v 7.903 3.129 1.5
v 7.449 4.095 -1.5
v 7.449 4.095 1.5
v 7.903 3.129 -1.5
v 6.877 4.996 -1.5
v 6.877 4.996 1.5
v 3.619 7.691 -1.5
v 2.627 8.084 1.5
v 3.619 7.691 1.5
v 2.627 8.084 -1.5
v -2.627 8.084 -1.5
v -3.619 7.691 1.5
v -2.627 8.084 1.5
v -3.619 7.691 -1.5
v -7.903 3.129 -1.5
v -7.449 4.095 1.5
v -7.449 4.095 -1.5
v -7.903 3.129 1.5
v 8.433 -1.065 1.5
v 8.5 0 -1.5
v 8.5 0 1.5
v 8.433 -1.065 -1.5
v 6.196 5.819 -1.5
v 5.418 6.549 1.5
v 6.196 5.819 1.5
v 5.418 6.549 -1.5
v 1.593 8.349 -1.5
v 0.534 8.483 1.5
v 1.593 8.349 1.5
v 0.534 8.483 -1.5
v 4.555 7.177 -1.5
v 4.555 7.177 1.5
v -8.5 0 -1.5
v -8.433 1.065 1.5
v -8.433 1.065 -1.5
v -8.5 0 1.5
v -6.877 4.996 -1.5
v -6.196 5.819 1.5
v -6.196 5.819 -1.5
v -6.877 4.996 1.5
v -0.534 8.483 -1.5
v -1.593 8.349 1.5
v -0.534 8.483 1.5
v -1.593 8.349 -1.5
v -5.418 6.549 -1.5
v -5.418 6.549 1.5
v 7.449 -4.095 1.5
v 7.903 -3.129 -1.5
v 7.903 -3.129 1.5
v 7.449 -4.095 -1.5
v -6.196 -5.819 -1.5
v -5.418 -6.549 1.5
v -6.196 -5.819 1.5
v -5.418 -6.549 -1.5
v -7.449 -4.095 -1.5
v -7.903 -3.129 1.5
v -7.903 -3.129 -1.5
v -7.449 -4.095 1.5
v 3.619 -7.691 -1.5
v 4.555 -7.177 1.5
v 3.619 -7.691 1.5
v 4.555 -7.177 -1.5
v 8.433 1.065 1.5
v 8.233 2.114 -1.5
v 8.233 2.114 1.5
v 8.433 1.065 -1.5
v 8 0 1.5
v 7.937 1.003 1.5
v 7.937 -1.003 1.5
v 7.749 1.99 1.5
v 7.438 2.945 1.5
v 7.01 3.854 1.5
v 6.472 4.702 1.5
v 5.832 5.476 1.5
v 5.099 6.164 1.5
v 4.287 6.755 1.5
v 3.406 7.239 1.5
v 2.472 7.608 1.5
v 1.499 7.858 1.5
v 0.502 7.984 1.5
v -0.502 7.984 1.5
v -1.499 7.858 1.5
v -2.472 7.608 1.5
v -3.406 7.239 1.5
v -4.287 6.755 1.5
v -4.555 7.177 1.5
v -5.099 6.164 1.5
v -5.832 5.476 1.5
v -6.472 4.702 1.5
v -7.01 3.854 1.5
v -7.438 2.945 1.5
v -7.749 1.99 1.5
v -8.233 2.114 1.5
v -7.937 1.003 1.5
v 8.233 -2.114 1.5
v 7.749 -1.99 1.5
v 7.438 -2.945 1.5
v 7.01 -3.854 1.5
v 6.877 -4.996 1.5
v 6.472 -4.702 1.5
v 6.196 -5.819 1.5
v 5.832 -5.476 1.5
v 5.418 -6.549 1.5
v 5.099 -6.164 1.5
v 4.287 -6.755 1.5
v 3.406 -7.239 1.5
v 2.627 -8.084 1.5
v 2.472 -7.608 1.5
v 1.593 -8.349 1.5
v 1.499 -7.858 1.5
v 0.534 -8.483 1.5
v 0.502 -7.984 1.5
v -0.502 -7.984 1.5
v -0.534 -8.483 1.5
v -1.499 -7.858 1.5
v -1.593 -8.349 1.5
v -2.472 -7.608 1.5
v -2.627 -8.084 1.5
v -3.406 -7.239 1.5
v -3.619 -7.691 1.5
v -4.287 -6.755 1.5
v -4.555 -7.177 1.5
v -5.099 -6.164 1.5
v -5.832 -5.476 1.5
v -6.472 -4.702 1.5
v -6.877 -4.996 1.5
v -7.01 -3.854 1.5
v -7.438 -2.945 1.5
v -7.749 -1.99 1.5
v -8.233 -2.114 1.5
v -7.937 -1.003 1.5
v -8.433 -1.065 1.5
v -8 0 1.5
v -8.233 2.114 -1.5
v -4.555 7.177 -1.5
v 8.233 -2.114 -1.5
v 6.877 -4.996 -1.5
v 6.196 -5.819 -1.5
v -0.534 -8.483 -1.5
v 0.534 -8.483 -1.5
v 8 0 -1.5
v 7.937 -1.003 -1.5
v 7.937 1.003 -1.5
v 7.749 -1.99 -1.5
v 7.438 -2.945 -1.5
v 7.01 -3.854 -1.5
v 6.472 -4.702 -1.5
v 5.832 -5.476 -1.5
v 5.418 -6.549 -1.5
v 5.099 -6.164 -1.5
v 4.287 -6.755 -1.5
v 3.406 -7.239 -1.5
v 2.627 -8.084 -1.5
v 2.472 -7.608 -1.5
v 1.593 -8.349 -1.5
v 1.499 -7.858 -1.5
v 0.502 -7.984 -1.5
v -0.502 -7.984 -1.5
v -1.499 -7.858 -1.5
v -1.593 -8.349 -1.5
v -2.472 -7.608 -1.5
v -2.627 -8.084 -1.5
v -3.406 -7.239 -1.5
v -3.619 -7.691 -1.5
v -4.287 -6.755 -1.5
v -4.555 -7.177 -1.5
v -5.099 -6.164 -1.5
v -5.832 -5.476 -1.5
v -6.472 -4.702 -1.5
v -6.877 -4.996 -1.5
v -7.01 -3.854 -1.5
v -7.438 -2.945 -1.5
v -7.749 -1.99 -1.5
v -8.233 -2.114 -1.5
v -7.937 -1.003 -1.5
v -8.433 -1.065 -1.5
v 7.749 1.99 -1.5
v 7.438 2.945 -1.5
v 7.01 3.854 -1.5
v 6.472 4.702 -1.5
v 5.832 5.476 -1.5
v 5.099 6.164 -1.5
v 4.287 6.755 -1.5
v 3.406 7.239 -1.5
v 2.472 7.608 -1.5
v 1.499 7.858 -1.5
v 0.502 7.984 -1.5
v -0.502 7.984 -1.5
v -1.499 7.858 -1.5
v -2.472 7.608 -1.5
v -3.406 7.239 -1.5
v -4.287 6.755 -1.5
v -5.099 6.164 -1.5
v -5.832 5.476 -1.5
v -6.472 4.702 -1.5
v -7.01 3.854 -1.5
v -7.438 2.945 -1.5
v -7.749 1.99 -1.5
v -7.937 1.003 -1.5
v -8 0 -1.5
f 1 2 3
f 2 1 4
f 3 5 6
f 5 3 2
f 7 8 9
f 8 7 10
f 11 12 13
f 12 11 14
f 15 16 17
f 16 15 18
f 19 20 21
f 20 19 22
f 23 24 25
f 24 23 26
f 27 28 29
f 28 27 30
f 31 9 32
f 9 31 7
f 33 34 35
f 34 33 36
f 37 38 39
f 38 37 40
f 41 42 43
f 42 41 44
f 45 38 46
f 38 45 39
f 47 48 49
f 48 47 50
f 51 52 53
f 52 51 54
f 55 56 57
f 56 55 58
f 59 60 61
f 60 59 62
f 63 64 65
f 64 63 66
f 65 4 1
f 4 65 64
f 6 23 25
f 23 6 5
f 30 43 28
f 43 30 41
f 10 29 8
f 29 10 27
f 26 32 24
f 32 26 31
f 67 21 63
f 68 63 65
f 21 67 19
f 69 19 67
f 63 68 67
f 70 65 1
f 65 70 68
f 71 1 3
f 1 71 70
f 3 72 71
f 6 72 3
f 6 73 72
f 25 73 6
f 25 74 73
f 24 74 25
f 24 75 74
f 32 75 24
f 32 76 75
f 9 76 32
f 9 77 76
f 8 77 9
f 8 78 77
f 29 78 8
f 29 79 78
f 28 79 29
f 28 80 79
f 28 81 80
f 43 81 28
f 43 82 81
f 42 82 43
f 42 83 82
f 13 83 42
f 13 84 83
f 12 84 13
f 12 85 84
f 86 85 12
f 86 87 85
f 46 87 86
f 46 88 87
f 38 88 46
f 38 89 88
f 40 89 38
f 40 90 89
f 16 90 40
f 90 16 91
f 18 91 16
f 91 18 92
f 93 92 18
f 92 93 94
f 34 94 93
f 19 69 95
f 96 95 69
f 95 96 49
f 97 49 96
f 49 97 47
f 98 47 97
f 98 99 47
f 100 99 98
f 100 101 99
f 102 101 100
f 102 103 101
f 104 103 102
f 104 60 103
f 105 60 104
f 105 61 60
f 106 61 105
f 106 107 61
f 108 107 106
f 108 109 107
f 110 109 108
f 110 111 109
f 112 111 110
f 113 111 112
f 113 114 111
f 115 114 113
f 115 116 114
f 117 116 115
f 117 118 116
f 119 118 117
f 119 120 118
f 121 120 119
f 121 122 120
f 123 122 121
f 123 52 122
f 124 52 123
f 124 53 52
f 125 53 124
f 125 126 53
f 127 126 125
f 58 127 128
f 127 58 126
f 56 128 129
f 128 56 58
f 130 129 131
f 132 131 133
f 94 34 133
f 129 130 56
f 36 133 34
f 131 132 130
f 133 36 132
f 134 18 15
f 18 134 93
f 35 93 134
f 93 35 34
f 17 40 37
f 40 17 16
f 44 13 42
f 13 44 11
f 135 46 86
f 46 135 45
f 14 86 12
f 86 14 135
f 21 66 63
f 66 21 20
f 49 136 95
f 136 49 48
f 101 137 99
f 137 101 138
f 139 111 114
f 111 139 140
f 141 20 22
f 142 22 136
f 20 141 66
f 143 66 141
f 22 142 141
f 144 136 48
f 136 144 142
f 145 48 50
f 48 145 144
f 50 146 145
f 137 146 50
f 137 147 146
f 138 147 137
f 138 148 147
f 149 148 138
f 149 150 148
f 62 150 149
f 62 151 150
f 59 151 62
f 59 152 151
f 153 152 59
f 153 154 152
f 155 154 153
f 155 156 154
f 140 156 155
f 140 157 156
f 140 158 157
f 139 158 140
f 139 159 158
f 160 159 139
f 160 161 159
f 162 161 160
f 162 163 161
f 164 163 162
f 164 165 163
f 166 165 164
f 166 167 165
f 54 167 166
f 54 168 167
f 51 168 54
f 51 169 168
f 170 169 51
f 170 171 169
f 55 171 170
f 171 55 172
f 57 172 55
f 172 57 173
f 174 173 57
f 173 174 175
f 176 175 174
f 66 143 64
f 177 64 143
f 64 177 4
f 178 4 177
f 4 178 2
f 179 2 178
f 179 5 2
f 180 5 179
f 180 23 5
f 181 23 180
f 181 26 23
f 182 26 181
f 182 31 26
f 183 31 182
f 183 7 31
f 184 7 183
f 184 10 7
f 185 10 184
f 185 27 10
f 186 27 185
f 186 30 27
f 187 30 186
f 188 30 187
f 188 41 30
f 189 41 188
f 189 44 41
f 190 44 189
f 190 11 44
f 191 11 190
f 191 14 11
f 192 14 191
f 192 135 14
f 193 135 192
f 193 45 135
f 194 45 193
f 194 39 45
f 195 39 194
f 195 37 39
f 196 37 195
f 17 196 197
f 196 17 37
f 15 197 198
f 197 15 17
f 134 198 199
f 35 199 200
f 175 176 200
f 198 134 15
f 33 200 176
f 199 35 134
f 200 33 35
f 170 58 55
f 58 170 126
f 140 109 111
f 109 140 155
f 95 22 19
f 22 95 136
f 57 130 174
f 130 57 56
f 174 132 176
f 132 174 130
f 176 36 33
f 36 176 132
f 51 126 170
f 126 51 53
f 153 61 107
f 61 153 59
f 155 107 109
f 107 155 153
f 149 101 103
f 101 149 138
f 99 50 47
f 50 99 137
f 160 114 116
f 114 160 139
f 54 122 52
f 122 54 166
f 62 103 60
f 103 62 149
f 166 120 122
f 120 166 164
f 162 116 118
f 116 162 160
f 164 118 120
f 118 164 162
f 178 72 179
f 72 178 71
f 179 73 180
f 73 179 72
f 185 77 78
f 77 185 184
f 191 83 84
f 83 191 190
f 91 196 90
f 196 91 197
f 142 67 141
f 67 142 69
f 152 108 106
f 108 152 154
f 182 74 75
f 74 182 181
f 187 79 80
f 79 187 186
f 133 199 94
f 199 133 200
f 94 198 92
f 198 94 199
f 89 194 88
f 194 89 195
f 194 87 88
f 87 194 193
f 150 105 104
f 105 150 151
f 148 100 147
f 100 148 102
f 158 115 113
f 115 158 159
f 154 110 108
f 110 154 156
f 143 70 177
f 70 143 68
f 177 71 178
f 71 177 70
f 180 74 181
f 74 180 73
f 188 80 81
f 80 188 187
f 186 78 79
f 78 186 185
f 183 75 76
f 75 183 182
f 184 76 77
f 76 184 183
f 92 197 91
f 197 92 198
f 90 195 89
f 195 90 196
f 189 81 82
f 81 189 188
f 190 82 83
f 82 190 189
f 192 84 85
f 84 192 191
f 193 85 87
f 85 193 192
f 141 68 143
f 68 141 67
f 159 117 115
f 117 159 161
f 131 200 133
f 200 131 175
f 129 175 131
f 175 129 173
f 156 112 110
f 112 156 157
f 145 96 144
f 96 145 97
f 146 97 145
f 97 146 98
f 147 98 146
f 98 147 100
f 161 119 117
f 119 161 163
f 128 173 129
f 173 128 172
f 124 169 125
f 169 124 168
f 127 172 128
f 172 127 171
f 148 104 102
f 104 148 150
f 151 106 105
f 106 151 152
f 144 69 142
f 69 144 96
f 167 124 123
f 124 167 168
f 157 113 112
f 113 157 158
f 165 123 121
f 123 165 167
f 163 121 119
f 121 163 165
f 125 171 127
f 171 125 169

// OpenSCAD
$fn = 50;


difference() {
	union() {
		translate(v = [0, 0, -1.5000000000]) {
			cylinder(h = 3, r = 8.5000000000);
		}
	}
	union() {
		translate(v = [0, 0, -100.0000000000]) {
			cylinder(h = 200, r = 8);
		}
	}
}
